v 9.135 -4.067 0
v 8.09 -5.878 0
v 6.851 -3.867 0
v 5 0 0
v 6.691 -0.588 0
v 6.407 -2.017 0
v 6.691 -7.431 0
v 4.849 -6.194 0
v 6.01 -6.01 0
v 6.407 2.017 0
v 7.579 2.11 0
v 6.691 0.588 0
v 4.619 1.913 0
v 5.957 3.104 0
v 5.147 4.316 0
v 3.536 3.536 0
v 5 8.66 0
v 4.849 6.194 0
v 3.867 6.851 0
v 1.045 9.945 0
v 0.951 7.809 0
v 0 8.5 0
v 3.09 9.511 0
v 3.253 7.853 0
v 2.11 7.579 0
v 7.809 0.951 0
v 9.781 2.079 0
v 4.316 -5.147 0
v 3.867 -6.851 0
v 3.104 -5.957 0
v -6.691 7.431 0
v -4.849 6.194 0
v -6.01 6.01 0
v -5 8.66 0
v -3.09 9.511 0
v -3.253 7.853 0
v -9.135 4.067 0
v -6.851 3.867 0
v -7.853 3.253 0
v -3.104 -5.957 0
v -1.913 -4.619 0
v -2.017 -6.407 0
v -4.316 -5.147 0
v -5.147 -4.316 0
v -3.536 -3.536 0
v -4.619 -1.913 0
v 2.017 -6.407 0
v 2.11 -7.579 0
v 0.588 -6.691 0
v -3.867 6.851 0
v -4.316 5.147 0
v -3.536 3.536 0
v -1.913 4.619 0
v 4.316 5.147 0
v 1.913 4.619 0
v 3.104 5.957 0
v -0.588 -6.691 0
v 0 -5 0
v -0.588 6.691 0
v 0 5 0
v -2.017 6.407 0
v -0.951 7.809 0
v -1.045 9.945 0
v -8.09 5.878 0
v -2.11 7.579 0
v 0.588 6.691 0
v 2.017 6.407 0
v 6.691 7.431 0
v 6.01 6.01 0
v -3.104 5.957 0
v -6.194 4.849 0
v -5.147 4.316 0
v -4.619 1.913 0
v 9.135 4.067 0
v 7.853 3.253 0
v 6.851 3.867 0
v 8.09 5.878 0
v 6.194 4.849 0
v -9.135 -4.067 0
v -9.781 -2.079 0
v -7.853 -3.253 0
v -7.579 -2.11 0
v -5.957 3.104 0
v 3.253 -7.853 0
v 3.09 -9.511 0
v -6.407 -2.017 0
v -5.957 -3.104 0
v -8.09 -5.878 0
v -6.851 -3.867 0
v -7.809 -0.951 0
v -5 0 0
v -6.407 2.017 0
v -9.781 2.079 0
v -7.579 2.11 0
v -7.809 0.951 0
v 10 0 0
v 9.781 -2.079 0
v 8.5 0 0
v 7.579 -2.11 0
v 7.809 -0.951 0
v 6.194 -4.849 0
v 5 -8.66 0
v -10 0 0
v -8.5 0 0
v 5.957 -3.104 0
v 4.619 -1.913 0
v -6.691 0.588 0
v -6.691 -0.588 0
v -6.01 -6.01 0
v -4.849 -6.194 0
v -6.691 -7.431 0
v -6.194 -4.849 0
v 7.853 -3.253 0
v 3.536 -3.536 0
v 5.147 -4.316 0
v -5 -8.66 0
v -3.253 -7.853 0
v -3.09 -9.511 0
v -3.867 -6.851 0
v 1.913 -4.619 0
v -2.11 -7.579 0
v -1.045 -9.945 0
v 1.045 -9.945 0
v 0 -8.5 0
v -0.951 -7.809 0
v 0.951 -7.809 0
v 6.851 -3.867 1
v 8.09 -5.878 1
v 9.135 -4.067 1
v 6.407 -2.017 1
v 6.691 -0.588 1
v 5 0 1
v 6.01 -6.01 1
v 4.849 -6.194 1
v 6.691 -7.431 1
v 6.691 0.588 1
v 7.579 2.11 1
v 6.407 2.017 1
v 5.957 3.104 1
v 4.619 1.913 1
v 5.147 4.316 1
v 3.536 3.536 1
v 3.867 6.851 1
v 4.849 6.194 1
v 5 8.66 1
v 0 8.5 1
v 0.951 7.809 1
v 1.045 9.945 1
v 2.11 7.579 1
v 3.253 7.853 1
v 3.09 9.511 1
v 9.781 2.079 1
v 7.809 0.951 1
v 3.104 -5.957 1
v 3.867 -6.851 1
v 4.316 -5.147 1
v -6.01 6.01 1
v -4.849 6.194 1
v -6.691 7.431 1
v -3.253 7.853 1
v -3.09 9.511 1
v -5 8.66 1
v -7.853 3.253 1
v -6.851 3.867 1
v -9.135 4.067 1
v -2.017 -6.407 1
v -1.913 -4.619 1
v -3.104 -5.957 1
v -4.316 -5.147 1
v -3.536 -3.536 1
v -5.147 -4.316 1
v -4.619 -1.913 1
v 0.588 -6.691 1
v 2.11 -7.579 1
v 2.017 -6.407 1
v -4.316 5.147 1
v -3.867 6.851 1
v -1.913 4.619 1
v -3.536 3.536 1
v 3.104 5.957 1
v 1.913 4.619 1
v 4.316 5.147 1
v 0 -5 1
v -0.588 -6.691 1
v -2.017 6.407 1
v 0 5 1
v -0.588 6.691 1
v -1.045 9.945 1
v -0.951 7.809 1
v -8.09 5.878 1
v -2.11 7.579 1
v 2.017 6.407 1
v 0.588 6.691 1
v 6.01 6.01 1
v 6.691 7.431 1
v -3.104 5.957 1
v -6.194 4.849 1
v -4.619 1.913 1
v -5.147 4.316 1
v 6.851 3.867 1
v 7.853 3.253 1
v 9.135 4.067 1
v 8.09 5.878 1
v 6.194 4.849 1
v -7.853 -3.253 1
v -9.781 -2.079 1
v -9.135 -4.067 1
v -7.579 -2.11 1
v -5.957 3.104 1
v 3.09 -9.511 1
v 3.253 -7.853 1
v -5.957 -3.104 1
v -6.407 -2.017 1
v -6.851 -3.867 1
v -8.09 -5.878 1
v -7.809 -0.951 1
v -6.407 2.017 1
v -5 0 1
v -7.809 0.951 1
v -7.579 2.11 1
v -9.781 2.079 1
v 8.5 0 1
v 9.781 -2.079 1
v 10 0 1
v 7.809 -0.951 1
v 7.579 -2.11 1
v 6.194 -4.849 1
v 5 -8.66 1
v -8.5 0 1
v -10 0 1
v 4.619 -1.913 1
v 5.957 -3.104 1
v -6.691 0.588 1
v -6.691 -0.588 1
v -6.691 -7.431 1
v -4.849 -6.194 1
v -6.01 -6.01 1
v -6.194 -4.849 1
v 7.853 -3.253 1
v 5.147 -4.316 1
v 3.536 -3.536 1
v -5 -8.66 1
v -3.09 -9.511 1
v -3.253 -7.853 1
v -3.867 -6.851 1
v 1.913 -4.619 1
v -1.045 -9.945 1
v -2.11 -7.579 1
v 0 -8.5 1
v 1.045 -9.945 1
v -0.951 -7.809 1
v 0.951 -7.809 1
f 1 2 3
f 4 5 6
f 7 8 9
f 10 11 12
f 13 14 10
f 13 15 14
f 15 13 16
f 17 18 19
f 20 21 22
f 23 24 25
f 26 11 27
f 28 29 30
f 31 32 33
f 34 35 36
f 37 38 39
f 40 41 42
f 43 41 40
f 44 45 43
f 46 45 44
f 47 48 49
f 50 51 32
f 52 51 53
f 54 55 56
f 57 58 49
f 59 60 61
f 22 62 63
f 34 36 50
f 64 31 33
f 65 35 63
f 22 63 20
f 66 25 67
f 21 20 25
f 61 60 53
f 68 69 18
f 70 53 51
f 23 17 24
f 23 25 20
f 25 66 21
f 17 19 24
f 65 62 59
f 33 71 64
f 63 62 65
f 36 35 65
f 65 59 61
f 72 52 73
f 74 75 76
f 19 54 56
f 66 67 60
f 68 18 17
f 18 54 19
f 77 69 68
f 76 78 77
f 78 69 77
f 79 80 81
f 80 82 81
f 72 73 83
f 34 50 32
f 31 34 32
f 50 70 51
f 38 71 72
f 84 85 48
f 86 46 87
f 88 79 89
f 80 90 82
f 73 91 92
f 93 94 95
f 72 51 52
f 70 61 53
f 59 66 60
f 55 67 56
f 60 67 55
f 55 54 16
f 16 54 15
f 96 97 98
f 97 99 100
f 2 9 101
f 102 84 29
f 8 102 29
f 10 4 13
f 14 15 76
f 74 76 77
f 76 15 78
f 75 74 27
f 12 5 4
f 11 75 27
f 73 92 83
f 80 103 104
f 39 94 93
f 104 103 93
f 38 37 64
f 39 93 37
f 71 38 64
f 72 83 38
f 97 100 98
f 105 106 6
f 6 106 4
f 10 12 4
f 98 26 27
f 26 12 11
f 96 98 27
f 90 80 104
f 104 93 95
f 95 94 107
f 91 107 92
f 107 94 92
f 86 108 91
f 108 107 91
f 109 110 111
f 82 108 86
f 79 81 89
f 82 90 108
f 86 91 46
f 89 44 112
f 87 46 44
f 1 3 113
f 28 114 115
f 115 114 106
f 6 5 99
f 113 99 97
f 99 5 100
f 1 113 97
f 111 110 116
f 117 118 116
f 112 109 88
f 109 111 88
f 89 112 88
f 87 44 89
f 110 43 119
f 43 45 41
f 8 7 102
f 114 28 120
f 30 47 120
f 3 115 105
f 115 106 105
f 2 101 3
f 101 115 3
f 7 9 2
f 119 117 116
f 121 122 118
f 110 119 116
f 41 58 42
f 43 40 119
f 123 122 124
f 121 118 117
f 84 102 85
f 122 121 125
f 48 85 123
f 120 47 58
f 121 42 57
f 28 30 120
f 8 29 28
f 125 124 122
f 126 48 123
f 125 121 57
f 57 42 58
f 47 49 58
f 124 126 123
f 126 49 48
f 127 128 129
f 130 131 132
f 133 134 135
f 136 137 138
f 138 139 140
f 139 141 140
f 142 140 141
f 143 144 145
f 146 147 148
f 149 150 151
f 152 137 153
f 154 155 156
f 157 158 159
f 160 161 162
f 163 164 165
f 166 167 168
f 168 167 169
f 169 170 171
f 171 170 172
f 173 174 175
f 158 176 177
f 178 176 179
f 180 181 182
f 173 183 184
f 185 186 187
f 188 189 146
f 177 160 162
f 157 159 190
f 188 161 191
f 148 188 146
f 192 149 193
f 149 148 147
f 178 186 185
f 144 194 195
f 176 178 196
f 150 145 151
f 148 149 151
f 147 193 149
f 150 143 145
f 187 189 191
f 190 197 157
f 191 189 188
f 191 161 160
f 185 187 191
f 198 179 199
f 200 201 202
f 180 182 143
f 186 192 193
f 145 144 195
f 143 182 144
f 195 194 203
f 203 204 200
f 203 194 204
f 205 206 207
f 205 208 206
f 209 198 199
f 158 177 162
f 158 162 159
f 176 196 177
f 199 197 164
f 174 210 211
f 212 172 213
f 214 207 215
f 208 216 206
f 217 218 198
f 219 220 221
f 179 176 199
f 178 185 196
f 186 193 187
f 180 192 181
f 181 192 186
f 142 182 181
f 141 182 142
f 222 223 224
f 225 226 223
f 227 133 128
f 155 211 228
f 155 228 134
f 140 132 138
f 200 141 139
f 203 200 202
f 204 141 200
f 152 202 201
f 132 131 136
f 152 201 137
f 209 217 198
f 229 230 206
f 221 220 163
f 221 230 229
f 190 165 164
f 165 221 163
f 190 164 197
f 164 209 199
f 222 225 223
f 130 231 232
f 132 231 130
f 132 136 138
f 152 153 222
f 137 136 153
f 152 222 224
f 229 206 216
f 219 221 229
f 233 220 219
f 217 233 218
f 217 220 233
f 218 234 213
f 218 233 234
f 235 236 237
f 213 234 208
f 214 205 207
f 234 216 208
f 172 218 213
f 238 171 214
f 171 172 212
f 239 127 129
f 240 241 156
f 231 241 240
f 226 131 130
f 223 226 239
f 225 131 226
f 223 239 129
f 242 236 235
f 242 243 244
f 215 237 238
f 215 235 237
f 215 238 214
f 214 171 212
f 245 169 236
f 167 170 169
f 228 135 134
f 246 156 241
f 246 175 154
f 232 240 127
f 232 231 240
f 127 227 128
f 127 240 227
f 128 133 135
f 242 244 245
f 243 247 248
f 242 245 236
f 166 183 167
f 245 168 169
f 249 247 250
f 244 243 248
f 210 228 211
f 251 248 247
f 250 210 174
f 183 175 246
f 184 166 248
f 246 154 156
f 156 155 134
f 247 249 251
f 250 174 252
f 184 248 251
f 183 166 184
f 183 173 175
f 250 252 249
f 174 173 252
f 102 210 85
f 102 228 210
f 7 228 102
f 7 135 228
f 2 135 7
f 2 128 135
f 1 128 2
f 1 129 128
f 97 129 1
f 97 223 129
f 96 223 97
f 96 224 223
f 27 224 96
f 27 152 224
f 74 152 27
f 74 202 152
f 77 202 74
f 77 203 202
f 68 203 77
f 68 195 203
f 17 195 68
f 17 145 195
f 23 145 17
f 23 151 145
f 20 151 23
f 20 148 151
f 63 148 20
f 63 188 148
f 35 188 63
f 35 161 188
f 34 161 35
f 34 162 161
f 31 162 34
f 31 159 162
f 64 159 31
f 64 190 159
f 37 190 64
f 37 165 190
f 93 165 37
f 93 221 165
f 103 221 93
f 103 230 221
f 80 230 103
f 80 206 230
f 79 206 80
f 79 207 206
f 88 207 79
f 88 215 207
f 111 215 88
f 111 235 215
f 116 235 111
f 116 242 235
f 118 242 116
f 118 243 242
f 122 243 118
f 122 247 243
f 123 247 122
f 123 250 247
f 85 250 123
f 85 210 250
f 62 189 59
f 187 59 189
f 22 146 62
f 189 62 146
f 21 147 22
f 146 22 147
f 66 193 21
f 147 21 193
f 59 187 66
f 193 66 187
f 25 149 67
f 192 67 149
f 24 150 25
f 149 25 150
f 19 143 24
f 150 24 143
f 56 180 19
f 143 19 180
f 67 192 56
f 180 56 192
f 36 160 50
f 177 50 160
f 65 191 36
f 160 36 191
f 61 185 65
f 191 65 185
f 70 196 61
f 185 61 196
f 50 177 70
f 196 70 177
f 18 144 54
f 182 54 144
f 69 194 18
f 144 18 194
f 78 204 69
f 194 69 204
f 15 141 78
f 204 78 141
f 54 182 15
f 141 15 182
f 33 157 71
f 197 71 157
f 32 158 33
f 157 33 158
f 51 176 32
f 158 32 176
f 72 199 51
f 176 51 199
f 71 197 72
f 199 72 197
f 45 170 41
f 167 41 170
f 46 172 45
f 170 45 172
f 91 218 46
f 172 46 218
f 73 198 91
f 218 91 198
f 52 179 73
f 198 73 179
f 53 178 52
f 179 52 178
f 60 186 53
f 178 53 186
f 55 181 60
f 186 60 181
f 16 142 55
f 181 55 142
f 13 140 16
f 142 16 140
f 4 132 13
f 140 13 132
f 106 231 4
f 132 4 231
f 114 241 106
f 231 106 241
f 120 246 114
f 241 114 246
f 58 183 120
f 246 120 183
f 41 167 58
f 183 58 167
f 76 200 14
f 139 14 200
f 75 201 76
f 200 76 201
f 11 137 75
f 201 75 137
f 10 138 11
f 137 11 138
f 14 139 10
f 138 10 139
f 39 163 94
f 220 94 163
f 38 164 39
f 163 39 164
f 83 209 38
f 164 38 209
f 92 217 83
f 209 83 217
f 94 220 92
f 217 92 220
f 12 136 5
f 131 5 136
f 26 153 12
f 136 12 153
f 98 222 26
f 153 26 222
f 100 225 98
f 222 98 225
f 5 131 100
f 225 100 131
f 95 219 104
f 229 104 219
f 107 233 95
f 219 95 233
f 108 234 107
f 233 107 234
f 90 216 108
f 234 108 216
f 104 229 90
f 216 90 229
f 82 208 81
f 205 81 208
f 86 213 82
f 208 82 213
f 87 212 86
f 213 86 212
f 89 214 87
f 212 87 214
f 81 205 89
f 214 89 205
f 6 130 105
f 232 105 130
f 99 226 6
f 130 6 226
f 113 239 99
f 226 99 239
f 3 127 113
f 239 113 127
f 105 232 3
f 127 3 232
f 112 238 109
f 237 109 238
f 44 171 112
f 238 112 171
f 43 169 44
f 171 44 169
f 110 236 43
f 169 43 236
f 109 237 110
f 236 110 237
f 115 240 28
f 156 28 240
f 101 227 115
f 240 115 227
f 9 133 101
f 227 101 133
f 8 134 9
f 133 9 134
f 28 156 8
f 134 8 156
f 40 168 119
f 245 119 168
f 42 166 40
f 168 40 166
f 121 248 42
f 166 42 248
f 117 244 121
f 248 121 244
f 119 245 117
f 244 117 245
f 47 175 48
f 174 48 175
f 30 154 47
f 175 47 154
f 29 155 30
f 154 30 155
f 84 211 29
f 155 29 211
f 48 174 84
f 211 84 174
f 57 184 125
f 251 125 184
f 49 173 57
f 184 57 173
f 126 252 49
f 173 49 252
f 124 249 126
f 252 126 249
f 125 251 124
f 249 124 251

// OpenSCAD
linear_extrude(height=1.0)
difference() {
  circle(r=10);
  circle(r=5);
  for (a=[0:360/16:360]) {
    rotate([0,0,a]) translate([7.5,0,0]) circle(r=1);
    }
  }
